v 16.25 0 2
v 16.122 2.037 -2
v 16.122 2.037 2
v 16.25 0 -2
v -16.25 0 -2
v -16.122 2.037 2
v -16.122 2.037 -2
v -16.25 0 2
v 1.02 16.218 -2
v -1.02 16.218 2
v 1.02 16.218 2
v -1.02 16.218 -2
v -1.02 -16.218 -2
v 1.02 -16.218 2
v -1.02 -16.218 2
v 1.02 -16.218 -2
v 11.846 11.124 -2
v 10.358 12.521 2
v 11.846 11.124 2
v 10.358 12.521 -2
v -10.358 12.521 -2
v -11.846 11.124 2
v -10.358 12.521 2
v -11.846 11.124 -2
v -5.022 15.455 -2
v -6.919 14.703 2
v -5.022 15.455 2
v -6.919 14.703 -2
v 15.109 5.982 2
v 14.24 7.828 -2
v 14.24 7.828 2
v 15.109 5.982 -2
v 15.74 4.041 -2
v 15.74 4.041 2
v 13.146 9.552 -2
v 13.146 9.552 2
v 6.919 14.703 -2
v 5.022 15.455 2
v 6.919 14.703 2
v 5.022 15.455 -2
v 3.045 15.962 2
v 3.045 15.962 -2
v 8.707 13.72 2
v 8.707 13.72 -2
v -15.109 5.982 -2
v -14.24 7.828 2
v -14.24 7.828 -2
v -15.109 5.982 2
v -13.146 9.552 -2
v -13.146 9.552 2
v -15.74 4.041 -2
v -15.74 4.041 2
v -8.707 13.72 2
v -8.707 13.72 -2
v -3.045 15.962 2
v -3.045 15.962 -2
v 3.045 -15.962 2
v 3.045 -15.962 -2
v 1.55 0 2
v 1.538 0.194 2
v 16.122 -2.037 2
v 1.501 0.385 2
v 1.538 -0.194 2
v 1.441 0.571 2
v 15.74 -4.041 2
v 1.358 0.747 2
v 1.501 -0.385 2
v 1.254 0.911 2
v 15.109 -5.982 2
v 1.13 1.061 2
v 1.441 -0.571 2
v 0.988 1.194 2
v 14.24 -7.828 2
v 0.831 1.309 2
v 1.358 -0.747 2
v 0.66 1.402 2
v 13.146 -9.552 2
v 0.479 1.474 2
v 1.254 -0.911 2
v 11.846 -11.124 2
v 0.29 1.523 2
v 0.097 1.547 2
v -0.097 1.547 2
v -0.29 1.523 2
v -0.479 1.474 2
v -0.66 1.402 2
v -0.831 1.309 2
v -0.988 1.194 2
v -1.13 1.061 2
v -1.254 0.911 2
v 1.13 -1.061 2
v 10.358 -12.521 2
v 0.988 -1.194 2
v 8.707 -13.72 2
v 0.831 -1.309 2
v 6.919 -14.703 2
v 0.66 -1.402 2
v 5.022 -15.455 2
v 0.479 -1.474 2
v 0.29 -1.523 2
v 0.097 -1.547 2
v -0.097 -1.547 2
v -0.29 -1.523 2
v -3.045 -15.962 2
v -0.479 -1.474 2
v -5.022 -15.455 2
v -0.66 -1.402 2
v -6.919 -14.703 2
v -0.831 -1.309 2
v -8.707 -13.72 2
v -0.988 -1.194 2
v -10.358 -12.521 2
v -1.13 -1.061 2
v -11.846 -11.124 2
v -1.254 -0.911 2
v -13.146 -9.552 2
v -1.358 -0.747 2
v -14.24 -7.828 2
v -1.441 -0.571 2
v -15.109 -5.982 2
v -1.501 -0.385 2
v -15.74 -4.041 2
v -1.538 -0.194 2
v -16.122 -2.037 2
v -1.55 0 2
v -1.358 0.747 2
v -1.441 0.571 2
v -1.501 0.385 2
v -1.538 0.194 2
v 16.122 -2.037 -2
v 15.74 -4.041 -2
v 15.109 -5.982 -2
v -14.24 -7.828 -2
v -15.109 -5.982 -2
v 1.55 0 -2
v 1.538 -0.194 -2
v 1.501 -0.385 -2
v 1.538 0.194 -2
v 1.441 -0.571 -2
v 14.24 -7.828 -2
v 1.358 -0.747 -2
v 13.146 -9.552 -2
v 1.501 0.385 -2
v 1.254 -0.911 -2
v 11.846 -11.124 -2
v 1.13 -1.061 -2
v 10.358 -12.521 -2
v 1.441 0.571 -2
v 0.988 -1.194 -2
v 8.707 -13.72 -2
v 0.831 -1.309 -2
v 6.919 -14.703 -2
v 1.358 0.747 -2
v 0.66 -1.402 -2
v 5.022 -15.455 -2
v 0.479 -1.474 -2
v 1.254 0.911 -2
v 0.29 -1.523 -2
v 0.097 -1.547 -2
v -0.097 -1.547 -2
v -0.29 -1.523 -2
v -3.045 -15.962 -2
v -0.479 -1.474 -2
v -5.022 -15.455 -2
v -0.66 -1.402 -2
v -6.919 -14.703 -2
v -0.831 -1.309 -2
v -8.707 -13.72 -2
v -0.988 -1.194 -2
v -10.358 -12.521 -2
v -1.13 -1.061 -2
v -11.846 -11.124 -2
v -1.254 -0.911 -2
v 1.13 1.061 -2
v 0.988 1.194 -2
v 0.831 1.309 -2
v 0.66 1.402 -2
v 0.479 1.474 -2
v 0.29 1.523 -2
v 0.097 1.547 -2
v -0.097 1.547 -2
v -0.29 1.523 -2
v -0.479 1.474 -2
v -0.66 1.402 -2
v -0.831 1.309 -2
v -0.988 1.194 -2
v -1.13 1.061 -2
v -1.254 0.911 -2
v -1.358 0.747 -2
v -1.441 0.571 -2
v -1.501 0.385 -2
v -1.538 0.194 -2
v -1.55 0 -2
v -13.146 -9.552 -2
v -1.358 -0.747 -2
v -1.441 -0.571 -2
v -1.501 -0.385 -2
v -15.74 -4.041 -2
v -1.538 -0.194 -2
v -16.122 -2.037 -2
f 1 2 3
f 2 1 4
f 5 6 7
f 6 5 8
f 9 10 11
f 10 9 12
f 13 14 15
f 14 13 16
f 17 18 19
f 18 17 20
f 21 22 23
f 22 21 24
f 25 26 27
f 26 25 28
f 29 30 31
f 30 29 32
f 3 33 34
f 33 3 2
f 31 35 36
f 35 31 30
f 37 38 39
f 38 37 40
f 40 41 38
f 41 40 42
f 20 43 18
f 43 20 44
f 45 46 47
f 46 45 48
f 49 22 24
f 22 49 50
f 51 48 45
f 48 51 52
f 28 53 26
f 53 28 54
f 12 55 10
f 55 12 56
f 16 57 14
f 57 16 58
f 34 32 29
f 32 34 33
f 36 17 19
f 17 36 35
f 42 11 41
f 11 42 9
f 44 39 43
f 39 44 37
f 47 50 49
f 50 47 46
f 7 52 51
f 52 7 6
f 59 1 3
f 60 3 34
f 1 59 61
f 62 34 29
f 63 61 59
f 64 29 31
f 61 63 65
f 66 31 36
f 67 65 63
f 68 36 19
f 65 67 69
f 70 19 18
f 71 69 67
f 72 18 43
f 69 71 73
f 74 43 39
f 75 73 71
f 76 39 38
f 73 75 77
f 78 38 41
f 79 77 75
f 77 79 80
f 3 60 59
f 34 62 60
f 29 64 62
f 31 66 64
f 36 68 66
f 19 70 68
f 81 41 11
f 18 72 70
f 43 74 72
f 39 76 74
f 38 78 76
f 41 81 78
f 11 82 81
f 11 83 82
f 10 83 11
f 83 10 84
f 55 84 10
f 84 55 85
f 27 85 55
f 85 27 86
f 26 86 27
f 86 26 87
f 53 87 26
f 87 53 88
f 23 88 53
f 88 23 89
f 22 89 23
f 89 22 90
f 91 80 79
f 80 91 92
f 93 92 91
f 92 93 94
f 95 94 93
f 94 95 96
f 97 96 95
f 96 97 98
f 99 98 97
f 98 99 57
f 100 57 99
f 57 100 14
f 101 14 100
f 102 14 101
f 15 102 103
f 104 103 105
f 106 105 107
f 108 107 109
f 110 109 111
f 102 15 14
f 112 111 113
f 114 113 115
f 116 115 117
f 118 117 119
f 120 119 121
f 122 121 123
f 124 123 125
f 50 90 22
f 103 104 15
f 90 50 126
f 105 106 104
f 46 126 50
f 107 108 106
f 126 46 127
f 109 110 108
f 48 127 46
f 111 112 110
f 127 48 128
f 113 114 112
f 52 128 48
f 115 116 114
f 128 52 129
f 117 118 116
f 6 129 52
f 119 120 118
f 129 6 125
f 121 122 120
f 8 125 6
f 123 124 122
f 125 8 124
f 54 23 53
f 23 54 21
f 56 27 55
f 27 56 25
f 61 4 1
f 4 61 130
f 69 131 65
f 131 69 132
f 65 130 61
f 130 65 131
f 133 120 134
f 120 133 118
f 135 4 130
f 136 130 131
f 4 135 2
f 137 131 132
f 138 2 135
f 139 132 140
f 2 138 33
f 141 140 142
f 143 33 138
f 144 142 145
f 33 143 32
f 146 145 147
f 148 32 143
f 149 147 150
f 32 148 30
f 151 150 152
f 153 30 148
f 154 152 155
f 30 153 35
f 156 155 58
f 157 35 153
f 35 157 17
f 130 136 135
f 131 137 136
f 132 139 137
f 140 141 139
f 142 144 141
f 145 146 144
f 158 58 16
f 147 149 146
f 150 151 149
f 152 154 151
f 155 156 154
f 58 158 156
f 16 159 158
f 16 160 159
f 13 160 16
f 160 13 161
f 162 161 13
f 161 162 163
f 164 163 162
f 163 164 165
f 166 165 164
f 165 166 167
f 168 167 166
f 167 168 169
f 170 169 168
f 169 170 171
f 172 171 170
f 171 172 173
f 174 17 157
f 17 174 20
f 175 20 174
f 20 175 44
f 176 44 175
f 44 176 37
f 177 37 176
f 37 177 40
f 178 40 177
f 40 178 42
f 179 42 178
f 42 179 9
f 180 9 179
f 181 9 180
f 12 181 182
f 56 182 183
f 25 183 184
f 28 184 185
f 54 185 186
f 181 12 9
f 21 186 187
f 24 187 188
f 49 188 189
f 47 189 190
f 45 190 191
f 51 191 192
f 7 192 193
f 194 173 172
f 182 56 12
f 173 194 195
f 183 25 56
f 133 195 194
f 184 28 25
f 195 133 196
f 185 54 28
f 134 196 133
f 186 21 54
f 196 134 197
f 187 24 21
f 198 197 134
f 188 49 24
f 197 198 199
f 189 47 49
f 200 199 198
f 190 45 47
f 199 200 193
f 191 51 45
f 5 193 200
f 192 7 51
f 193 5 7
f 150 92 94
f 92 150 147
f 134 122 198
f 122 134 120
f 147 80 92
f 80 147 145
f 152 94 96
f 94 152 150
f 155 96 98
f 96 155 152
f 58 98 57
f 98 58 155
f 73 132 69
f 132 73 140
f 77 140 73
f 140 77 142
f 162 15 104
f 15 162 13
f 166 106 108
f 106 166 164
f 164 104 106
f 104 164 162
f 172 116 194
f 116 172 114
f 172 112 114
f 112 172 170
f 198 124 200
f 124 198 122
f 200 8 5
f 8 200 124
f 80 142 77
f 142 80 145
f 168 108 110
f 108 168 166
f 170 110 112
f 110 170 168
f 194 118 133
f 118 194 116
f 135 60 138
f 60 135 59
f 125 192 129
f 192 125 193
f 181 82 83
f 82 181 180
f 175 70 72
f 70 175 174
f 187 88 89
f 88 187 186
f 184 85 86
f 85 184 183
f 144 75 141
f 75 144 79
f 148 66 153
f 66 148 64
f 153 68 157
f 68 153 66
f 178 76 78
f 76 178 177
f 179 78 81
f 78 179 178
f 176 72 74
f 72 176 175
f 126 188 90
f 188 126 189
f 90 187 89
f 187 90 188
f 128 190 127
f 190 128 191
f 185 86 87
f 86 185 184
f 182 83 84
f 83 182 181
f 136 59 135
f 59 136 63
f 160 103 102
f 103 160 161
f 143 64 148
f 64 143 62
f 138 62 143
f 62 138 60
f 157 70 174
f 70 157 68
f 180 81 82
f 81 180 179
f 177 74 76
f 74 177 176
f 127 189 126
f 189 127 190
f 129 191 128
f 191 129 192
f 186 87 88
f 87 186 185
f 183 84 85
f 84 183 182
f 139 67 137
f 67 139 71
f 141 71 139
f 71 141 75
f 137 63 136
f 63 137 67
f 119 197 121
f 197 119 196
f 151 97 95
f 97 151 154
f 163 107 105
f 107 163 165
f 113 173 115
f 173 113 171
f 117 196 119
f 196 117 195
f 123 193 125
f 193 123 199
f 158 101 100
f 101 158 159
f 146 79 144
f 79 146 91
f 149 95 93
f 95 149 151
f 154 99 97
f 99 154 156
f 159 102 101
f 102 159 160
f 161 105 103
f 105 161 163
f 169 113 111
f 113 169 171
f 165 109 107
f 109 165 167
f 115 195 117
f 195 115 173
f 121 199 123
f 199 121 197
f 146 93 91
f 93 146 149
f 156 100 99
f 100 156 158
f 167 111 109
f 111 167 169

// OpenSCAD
$fn = 50;


difference() {
	union() {
		translate(v = [0, 0, -2.0000000000]) {
			cylinder(h = 4, r = 16.2500000000);
		}
	}
	union() {
		translate(v = [0, 0, -100.0000000000]) {
			cylinder(h = 200, r = 1.5500000000);
		}
	}
}
